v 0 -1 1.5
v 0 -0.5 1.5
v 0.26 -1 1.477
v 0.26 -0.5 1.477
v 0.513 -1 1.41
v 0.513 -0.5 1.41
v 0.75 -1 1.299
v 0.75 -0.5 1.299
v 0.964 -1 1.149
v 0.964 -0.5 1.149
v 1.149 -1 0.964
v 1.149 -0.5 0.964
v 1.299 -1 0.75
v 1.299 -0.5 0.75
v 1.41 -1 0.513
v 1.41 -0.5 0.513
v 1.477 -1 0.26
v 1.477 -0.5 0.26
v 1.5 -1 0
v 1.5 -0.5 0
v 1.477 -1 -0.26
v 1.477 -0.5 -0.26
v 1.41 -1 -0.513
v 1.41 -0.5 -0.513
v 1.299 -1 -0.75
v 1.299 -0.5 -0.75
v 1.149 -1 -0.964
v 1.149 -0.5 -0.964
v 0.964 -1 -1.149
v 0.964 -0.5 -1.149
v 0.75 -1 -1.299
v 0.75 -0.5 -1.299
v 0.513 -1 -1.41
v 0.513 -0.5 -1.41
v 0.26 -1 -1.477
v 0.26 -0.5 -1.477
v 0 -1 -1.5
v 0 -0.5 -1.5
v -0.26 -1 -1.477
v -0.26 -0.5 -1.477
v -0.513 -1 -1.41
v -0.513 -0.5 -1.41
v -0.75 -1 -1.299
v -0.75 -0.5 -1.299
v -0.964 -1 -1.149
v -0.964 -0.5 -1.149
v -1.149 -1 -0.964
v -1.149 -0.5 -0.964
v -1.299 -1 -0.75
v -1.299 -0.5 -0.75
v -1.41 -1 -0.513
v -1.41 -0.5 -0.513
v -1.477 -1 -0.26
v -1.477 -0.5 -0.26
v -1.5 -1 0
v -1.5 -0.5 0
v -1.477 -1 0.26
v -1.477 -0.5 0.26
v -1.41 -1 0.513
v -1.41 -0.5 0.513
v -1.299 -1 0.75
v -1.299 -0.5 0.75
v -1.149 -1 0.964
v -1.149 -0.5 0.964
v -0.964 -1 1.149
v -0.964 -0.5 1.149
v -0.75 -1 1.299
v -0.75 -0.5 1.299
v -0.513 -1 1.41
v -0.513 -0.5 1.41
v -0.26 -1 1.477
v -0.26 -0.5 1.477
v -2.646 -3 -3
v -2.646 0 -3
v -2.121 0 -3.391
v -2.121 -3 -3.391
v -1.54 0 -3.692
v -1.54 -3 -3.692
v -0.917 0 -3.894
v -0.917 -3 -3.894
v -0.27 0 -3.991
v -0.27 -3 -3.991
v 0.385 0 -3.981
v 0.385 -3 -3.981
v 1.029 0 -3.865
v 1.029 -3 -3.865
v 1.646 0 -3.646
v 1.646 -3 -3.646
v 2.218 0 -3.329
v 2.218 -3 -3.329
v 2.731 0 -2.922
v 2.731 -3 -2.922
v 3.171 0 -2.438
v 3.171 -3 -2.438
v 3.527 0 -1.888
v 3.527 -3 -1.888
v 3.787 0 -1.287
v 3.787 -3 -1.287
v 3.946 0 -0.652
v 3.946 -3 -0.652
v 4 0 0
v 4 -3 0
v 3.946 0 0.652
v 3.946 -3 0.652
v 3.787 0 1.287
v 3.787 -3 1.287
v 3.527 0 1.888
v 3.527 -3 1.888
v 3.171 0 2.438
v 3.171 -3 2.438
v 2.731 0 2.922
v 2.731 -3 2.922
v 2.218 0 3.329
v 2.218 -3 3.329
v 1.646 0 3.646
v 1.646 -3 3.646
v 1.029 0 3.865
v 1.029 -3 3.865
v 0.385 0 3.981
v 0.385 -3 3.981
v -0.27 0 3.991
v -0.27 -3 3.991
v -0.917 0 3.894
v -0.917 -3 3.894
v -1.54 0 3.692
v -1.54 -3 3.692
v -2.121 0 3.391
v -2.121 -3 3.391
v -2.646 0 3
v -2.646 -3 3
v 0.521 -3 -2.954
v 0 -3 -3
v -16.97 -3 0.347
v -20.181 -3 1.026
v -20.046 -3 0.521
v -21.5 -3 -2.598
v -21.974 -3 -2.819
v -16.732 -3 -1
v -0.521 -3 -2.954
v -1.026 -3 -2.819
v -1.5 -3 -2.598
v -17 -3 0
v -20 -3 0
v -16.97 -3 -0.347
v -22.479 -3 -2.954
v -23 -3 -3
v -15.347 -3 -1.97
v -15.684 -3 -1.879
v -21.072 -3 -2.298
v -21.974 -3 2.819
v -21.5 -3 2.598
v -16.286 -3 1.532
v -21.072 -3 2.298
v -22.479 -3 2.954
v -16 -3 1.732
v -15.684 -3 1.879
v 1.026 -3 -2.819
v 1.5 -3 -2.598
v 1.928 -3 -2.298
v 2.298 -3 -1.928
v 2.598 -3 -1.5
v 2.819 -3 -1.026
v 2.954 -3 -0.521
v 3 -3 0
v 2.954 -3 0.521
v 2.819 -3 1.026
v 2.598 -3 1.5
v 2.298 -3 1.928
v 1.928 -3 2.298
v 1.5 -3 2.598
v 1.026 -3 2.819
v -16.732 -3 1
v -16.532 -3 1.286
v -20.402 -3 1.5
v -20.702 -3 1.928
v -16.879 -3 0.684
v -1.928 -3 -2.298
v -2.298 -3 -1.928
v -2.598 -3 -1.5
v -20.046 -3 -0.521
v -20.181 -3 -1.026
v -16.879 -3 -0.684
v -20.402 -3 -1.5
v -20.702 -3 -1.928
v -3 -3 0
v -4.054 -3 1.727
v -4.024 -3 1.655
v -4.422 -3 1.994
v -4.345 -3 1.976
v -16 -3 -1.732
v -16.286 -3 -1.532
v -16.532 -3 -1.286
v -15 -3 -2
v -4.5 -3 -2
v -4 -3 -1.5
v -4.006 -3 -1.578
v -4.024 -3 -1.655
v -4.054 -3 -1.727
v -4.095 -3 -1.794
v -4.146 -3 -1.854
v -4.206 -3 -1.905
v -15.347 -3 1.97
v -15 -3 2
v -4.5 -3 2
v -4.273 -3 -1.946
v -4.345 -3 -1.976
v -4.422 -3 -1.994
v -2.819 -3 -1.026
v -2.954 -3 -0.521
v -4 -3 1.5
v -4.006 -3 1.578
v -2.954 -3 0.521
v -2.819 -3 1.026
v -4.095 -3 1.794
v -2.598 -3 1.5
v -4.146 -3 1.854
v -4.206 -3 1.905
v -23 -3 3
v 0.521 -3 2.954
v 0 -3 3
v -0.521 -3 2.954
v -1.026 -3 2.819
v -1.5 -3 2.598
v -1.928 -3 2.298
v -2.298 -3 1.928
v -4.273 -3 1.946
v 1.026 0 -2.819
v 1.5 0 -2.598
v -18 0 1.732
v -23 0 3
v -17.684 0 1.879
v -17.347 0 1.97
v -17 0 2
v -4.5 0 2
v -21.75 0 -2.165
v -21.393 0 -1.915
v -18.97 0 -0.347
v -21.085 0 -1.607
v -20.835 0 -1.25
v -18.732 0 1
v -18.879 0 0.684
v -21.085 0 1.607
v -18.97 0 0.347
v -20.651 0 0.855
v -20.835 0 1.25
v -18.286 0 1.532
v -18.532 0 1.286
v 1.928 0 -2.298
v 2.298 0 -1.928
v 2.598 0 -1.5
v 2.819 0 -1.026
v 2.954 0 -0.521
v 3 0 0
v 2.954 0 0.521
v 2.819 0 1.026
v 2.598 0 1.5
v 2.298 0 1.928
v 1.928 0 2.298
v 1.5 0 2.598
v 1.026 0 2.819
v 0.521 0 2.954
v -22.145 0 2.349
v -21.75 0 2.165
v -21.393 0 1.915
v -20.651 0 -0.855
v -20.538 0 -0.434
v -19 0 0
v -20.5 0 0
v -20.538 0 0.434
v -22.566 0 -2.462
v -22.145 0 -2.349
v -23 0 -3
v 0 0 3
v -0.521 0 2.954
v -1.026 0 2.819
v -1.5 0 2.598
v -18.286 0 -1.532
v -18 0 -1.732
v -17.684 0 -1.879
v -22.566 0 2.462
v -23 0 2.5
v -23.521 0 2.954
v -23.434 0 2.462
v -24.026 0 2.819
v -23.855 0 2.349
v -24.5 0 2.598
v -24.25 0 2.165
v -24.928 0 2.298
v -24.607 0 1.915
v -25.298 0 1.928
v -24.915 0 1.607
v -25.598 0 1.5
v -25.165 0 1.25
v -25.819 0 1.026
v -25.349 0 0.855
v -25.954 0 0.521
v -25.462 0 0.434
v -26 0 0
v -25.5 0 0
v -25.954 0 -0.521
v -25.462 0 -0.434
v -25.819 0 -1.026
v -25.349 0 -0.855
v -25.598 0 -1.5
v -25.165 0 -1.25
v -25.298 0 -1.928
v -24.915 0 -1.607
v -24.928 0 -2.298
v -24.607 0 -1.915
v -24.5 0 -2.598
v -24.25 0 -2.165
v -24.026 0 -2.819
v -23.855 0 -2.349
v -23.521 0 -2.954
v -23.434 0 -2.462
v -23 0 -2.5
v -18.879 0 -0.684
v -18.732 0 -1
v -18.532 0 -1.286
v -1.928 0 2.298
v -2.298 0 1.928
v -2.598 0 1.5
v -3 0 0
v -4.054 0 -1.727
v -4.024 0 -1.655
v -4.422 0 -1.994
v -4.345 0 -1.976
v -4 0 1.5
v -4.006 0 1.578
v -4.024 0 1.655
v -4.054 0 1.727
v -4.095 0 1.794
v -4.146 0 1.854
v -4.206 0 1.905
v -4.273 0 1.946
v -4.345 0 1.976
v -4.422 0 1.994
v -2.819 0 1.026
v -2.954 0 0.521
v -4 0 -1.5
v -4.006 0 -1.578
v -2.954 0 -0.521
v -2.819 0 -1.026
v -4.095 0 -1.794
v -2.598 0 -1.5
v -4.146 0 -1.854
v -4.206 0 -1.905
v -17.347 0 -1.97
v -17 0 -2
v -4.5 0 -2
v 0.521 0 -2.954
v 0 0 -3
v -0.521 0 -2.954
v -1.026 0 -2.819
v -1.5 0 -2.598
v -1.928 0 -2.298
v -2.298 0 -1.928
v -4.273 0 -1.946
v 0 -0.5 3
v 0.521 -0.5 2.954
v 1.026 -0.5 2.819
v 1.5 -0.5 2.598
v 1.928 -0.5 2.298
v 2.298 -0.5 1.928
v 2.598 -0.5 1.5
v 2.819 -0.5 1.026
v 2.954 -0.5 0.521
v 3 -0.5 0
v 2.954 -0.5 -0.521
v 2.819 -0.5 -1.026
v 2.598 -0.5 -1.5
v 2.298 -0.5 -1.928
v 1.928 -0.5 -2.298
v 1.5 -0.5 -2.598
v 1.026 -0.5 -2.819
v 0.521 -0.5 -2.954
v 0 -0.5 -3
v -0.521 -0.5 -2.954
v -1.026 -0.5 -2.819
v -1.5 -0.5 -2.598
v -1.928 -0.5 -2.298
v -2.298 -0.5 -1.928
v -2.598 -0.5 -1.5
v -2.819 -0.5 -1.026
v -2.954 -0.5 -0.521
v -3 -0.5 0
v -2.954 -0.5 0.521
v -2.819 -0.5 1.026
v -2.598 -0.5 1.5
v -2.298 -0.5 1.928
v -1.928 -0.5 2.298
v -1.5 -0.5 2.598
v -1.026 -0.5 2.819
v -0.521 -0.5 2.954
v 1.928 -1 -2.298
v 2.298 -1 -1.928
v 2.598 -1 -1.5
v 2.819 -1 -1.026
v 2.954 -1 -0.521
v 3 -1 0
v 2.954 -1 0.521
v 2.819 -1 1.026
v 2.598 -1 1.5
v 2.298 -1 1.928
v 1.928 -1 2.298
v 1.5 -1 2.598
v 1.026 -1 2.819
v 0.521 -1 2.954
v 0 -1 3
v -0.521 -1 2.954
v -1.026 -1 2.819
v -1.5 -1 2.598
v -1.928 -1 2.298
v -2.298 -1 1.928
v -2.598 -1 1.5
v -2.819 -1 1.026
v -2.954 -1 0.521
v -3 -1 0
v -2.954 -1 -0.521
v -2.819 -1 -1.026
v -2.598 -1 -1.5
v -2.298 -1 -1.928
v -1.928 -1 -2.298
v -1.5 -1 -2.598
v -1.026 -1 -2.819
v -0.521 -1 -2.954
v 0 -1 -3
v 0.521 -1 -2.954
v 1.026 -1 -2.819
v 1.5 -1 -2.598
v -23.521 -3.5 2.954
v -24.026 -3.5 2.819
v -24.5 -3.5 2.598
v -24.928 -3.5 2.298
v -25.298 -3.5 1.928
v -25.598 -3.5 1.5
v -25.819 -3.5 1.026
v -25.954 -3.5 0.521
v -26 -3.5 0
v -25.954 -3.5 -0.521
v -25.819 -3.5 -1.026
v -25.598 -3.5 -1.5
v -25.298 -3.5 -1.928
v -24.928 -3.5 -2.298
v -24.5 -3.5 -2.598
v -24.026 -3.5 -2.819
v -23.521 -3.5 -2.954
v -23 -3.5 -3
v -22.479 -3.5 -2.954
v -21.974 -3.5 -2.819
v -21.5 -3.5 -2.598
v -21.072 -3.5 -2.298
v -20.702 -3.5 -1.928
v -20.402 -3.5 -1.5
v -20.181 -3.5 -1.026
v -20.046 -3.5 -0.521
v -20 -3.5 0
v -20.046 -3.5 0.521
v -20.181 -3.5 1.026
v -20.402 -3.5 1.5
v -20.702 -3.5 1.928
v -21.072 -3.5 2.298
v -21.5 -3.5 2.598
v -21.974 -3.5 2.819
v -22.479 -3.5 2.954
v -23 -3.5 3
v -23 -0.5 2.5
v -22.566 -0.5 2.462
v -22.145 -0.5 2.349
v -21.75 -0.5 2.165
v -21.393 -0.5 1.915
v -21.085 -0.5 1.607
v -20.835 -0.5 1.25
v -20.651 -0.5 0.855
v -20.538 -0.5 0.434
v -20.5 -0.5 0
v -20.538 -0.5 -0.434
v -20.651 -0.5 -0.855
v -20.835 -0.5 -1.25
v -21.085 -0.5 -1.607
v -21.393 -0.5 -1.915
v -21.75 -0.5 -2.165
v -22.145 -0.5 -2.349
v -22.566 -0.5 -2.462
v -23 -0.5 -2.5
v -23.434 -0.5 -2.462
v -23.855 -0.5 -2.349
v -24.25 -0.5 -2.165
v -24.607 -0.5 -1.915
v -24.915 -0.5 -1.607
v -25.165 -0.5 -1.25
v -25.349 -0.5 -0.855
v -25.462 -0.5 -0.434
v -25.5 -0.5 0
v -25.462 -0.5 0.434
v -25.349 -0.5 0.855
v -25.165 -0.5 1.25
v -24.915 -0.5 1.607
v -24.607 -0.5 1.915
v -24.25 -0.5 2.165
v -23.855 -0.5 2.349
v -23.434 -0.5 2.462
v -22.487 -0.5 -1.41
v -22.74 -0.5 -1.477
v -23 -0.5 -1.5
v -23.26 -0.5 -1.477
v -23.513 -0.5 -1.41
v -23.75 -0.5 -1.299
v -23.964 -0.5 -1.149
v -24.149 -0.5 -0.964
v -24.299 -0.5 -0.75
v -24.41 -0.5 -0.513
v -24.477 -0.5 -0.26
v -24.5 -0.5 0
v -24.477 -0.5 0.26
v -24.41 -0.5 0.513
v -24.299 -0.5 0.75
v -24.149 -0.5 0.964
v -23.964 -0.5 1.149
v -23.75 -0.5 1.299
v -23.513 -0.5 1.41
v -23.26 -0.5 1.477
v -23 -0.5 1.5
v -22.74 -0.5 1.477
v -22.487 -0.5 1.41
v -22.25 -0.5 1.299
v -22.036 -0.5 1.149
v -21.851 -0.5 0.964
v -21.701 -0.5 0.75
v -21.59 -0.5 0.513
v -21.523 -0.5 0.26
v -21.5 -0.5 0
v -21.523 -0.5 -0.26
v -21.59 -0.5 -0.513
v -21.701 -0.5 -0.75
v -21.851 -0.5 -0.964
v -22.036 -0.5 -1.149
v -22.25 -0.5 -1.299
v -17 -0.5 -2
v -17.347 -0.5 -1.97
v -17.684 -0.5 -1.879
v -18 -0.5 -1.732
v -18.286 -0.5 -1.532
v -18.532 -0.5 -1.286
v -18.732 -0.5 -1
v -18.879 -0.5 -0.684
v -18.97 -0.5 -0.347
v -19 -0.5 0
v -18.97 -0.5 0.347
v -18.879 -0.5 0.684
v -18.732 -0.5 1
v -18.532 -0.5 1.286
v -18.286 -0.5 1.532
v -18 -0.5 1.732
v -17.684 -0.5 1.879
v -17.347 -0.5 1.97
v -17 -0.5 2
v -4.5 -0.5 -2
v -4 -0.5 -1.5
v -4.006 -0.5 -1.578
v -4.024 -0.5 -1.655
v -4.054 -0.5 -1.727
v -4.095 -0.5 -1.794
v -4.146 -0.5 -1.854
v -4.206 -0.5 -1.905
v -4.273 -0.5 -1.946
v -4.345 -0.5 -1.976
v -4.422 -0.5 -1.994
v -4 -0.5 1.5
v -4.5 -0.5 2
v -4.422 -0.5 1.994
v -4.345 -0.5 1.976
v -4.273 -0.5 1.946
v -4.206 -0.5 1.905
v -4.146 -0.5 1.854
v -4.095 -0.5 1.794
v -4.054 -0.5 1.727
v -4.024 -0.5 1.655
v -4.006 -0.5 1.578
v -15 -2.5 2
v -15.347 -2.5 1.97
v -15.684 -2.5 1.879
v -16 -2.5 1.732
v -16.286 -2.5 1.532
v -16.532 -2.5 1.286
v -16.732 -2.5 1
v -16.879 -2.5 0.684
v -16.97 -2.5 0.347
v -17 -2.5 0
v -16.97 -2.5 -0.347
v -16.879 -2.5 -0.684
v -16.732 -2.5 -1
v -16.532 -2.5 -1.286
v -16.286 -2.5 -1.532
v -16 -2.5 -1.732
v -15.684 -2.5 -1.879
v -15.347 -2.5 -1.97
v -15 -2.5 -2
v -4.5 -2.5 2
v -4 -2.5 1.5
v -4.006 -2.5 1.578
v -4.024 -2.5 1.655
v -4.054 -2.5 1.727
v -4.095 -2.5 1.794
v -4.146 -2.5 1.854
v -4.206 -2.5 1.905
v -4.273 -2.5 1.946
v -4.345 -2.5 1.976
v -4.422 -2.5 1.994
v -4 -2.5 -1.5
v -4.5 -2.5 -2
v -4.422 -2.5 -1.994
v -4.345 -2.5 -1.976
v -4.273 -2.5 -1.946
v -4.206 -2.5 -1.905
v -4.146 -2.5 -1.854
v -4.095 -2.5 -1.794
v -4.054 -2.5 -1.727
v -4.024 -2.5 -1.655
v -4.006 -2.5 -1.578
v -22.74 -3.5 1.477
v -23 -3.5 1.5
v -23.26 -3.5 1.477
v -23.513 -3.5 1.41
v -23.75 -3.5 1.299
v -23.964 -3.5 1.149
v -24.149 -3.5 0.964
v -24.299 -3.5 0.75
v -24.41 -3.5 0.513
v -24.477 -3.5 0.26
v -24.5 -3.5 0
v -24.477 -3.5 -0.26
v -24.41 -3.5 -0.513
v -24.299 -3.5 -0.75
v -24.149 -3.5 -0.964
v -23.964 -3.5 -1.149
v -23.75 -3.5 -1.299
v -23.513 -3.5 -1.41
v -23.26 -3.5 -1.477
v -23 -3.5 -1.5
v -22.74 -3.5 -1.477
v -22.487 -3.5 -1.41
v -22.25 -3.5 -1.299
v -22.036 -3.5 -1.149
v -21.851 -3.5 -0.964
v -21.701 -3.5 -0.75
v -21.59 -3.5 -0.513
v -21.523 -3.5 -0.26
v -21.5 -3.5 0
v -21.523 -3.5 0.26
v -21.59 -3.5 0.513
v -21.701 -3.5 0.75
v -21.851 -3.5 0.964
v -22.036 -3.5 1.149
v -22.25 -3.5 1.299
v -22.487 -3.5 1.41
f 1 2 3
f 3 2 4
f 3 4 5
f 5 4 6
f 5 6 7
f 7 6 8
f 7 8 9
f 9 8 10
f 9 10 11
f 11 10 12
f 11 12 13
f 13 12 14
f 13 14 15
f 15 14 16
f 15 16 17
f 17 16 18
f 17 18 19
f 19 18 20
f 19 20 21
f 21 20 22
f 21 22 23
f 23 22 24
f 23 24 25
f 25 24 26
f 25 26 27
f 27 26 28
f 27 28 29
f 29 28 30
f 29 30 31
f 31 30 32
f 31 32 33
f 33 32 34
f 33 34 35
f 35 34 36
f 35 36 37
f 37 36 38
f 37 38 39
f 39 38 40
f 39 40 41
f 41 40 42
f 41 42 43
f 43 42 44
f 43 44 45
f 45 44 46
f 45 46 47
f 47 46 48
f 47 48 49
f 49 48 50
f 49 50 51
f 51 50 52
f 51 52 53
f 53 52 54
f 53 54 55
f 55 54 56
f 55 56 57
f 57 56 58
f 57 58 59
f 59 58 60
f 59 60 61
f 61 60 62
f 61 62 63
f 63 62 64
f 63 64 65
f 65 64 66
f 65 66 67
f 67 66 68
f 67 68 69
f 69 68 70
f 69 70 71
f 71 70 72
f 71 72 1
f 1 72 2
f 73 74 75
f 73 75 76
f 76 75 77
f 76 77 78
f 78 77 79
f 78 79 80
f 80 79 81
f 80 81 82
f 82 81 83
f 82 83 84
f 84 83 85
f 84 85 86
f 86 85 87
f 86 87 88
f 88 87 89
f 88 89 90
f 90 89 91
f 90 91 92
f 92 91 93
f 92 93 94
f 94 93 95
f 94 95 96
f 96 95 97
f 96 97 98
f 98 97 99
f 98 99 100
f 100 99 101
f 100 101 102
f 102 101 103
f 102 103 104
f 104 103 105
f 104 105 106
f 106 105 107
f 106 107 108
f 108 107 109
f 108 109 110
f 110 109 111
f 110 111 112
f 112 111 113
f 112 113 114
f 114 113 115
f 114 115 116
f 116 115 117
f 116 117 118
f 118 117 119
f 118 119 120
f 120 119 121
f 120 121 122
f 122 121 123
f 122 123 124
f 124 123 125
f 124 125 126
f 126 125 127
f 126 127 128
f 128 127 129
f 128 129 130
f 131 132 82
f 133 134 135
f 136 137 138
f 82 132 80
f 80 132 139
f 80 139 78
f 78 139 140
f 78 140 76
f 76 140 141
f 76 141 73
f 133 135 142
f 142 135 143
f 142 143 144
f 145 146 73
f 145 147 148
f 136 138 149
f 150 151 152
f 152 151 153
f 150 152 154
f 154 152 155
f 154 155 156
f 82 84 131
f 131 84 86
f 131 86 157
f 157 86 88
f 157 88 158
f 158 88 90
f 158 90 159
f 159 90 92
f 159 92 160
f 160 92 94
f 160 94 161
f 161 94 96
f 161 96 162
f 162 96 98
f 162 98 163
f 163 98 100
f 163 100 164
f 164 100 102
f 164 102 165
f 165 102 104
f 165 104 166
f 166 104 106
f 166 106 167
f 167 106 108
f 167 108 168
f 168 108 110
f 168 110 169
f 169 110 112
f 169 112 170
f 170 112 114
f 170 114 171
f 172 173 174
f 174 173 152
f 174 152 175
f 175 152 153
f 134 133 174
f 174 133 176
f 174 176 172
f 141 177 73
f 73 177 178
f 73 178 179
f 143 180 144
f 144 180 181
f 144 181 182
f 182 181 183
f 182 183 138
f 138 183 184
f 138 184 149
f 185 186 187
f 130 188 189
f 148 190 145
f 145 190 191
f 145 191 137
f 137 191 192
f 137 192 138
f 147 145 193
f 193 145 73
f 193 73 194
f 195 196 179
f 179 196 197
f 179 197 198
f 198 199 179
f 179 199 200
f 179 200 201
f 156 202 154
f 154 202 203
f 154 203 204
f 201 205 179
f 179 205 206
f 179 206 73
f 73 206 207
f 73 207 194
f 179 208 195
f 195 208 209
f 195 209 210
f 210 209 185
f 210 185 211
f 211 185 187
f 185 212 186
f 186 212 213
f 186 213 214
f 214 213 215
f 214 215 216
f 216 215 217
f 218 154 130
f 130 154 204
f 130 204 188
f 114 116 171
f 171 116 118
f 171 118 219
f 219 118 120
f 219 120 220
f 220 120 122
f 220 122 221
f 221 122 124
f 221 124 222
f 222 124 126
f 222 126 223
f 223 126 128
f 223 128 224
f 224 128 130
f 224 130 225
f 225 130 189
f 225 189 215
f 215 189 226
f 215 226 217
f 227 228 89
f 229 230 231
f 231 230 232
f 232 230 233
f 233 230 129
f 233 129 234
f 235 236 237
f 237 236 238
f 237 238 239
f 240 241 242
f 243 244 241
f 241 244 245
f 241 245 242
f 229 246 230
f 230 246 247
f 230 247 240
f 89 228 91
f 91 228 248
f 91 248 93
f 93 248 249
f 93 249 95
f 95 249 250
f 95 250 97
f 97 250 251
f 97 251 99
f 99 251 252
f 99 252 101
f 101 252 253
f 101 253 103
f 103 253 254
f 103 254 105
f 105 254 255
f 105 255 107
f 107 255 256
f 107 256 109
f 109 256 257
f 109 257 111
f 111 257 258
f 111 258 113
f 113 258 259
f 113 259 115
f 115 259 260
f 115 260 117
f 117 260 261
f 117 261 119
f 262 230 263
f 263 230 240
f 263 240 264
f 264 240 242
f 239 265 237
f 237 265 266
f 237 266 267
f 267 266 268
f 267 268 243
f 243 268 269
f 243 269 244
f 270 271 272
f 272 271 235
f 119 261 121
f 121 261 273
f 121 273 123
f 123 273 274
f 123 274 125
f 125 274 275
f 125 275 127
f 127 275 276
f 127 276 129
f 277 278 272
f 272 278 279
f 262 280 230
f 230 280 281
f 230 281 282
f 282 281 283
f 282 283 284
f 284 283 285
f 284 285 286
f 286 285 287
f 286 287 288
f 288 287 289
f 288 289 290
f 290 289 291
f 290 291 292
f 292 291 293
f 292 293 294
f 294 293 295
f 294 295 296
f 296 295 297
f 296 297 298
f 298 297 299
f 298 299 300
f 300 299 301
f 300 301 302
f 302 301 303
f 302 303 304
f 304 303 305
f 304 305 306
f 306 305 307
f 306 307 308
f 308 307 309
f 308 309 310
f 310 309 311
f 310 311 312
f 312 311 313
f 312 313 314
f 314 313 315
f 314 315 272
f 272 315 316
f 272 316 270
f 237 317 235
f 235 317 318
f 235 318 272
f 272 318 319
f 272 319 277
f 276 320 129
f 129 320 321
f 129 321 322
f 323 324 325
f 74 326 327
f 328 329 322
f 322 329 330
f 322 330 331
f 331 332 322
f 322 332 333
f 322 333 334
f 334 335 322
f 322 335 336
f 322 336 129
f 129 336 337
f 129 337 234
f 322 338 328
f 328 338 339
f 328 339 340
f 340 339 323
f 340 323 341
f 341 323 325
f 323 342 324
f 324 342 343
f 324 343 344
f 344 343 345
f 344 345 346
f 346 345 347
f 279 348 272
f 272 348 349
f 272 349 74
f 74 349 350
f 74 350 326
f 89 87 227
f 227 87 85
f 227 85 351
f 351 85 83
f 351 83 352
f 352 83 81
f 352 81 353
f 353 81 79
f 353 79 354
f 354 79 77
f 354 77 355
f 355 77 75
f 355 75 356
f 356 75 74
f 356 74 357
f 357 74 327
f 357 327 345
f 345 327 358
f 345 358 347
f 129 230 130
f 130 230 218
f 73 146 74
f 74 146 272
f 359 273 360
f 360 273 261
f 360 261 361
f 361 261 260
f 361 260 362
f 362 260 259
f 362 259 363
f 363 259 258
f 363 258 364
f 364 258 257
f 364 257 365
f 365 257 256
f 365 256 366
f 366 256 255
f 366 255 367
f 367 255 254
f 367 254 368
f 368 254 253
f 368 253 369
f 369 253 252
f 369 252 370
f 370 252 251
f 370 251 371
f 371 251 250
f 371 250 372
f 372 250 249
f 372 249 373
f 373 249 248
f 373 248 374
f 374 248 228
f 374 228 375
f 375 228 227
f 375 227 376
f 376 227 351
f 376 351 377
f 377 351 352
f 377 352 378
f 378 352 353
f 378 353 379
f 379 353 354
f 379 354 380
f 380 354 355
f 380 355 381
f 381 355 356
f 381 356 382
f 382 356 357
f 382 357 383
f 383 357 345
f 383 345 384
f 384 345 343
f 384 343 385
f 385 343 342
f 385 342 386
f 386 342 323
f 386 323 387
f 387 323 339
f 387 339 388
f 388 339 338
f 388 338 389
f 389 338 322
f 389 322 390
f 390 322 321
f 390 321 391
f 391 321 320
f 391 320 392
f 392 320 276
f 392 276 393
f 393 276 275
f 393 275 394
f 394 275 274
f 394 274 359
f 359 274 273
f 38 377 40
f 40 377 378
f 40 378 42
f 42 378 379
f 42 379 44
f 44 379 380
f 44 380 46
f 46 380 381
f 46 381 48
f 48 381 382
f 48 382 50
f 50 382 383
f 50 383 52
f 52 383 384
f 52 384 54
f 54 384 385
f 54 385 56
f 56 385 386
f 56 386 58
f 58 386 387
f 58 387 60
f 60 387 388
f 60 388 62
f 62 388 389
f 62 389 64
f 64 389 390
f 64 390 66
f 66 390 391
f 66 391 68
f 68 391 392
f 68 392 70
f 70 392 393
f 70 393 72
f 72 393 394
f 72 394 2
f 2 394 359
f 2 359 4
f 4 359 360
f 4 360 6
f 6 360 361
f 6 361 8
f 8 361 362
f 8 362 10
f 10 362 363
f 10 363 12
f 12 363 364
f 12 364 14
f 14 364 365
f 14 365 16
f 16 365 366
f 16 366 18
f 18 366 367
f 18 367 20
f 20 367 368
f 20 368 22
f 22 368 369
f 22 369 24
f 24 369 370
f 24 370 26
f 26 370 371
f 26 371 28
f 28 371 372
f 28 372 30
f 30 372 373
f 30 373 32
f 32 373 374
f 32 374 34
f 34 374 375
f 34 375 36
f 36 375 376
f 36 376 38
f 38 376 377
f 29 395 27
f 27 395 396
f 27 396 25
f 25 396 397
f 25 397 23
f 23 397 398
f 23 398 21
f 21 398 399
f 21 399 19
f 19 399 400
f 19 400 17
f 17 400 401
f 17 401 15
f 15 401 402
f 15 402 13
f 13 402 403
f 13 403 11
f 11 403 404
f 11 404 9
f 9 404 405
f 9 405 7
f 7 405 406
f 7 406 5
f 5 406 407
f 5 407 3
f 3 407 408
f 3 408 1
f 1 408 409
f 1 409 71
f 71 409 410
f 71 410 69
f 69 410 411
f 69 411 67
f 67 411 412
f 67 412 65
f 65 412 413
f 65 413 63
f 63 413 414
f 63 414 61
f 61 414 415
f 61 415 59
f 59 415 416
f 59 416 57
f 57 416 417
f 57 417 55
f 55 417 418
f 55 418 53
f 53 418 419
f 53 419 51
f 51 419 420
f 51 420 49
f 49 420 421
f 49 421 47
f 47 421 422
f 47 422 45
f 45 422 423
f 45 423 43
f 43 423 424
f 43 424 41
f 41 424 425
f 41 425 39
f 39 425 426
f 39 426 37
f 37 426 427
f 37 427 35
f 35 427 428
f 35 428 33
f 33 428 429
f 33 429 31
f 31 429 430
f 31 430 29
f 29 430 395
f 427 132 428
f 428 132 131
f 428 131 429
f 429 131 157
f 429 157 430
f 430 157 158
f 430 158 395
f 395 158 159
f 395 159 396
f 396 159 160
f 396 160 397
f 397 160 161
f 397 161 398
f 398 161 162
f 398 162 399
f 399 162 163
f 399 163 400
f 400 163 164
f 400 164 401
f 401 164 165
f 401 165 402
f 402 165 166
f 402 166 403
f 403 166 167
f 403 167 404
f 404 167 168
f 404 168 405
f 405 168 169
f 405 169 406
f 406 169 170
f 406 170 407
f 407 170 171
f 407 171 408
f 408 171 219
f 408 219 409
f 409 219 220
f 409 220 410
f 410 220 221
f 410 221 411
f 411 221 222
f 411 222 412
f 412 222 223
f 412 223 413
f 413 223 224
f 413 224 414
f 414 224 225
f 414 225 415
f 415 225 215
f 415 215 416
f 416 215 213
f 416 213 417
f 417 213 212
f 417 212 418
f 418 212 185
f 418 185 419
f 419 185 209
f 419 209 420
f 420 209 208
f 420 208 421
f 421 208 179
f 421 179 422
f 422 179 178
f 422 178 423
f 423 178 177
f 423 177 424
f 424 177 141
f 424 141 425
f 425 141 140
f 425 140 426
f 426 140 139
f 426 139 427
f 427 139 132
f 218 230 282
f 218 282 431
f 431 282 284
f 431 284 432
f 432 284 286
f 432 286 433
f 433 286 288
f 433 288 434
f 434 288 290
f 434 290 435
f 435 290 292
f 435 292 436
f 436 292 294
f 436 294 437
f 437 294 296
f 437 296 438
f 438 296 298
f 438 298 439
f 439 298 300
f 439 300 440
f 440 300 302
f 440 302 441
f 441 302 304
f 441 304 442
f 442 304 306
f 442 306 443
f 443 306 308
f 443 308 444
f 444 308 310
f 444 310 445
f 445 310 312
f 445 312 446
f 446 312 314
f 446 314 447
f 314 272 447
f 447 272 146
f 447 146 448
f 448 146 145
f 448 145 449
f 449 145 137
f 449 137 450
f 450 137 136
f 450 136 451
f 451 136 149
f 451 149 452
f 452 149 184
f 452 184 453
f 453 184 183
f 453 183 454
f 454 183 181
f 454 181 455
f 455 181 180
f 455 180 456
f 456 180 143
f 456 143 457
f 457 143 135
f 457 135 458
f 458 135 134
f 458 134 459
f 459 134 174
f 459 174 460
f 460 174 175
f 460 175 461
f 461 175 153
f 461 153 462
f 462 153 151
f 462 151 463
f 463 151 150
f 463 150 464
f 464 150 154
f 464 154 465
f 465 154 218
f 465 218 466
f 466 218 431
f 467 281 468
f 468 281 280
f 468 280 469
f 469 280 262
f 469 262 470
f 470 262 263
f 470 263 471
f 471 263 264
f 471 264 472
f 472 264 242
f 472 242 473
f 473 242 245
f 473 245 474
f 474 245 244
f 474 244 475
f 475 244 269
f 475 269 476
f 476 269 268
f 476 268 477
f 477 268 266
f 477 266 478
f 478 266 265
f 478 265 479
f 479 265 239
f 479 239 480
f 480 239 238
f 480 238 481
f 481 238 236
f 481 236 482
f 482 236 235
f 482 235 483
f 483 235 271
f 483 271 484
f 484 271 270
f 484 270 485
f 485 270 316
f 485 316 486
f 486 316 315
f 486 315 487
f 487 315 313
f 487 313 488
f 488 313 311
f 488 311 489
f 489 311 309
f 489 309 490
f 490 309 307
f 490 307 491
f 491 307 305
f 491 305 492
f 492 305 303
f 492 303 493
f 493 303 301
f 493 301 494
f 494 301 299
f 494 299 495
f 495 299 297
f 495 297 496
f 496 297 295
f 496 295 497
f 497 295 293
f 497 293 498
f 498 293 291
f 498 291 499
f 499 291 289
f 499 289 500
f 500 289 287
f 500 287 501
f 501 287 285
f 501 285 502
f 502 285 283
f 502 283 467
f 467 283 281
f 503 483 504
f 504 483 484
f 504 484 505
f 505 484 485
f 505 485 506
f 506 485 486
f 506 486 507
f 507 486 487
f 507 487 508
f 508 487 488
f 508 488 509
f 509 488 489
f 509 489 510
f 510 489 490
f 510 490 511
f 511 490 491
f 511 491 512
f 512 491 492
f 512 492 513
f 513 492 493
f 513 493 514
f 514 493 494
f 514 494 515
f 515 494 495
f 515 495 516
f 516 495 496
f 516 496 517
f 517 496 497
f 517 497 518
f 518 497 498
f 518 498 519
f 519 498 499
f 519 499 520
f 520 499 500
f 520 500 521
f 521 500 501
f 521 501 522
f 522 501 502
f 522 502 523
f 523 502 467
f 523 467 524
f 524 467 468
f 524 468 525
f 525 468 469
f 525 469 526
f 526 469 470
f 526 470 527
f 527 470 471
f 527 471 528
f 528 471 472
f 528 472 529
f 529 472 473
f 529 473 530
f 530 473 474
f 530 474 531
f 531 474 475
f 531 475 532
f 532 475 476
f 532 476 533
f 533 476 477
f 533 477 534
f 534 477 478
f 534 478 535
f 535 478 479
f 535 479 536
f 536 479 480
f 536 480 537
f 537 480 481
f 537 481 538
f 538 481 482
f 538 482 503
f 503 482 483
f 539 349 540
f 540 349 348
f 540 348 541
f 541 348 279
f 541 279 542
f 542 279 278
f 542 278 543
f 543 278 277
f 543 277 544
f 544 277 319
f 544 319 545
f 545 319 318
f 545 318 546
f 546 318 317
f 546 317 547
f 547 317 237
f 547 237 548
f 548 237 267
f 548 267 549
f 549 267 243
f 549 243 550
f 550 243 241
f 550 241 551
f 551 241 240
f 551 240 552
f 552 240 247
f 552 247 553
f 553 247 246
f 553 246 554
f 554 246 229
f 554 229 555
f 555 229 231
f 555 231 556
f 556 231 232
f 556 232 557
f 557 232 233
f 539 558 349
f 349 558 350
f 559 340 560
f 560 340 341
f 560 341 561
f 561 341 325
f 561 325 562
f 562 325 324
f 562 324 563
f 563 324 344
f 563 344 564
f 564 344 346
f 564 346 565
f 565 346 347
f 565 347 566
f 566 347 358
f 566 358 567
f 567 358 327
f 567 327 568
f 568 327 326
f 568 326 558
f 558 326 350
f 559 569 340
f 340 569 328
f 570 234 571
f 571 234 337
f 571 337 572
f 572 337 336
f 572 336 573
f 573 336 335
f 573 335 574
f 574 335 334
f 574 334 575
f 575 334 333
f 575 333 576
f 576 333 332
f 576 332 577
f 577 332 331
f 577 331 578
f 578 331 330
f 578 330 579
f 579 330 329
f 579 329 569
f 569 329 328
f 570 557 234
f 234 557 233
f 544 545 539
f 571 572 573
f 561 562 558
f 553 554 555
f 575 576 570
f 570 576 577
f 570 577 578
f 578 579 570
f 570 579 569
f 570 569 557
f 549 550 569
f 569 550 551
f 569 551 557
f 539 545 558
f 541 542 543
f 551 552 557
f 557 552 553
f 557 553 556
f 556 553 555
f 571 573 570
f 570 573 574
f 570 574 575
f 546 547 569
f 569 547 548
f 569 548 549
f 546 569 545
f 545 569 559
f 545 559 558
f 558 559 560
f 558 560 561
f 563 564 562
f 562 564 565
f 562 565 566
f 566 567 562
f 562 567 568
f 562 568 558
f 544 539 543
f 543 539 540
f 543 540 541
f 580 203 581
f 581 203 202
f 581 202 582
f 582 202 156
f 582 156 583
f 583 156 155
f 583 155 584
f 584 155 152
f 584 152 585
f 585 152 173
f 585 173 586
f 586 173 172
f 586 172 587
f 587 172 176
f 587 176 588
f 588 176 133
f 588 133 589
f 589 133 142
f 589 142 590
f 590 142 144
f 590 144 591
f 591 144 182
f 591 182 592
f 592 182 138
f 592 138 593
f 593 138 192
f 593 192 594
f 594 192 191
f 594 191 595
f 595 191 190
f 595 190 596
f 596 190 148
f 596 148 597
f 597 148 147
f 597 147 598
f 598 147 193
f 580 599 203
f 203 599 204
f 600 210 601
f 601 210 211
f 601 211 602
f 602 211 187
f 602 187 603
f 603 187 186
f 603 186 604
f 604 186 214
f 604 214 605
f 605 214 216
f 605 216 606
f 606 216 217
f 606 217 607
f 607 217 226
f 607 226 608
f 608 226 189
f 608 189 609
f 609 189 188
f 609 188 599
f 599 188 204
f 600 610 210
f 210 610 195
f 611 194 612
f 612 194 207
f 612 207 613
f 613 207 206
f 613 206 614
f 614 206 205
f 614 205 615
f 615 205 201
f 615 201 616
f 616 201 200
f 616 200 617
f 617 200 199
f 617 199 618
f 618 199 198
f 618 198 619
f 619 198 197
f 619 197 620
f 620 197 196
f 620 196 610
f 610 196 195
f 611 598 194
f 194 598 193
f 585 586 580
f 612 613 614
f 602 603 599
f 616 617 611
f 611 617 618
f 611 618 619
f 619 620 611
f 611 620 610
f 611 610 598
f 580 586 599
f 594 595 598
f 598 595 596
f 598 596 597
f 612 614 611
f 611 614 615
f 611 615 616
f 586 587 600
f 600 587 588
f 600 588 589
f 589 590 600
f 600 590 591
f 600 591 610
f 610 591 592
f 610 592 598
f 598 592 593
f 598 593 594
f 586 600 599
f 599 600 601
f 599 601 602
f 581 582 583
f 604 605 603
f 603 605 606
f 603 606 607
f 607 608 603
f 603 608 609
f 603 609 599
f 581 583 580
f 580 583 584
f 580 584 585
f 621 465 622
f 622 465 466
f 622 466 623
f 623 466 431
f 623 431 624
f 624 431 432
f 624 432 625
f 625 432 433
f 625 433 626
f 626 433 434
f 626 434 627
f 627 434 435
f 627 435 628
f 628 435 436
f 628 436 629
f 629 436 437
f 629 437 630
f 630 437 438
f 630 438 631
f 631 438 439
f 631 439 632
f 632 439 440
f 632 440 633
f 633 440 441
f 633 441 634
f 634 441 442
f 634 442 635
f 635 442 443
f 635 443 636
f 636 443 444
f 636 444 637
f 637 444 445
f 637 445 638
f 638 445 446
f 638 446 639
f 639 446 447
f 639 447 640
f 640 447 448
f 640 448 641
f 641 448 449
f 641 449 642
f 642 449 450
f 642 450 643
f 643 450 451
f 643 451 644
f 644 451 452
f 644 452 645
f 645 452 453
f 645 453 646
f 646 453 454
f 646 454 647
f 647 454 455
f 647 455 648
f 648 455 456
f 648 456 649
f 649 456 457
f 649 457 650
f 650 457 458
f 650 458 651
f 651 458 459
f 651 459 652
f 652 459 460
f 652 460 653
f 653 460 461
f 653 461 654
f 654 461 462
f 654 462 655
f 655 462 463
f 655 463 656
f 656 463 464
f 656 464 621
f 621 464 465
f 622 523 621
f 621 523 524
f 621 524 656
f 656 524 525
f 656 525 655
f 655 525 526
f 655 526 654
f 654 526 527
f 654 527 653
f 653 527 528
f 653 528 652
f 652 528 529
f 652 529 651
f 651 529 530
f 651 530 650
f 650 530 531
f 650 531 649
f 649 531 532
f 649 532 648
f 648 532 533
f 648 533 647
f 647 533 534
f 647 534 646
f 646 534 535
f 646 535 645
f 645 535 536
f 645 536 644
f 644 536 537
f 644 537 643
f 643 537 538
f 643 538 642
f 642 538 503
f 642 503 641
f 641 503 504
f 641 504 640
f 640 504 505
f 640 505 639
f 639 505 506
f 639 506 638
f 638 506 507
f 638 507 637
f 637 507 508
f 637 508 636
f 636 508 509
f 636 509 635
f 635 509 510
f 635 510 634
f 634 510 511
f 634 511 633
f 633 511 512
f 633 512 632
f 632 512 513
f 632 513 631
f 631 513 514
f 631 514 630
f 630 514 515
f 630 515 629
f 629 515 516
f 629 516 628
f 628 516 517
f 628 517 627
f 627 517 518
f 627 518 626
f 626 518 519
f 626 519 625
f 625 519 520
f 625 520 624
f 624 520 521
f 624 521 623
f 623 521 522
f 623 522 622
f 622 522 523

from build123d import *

# Parameters (mm, degrees)
SKETCH1_R           = 4
BOSS_EXTRUDE1_DEPTH = 3
SKETCH5_W           = 23
SKETCH5_H           = 6
BOSS_EXTRUDE2_DEPTH = 3
SKETCH2_R           = 3
CUT_EXTRUDE4_DEPTH  = 0.5
SKETCH7_R           = 1.5
CUT_EXTRUDE5_DEPTH  = 3.5
SKETCH8_R           = 3
CUT_EXTRUDE7_DEPTH  = 2
SKETCH9_R           = 3
BOSS_EXTRUDE3_DEPTH = 3
SKETCH10_R          = 2.5
CUT_EXTRUDE8_DEPTH  = 0.5
CUT_EXTRUDE10_DEPTH = 0.5
CUT_EXTRUDE11_DEPTH = 0.5
SKETCH11_R          = 3
BOSS_EXTRUDE5_DEPTH = 0.5
SKETCH15_R          = 1.5
CUT_EXTRUDE12_DEPTH = 4


with BuildPart() as part:
    # Sketch1 → Boss-Extrude1 (new body)
    with BuildSketch(Plane(origin=(0, 0, 0), x_dir=(1, 0, 0), z_dir=(0, 1, 0))):
        Circle(SKETCH1_R)
    extrude(amount=-BOSS_EXTRUDE1_DEPTH)

    # Sketch5 → Boss-Extrude2 (add)
    with BuildSketch(Plane(origin=(0, 0, 0), x_dir=(1, 0, 0), z_dir=(0, 1, 0))):
        with Locations((-11.5, 0)):
            Rectangle(SKETCH5_W, SKETCH5_H)
    extrude(amount=-BOSS_EXTRUDE2_DEPTH)

    # Sketch2 → Cut-Extrude4 (cut)
    with BuildSketch(Plane(origin=(0, 0, 0), x_dir=(1, 0, 0), z_dir=(0, 1, 0))):
        Circle(SKETCH2_R)
    extrude(amount=-CUT_EXTRUDE4_DEPTH, mode=Mode.SUBTRACT)

    # Sketch7 → Cut-Extrude5 (cut, through all)
    with BuildSketch(Plane(origin=(0, -0.5, 0), x_dir=(1, 0, 0), z_dir=(0, 1, 0))):
        Circle(SKETCH7_R)
    extrude(amount=-CUT_EXTRUDE5_DEPTH, mode=Mode.SUBTRACT)

    # Sketch8 → Cut-Extrude7 (cut)
    with BuildSketch(Plane.XZ.offset(3)):
        Circle(SKETCH8_R)
    extrude(amount=-CUT_EXTRUDE7_DEPTH, mode=Mode.SUBTRACT)

    # Sketch9 → Boss-Extrude3 (add)
    with BuildSketch(Plane(origin=(0, 0, 0), x_dir=(1, 0, 0), z_dir=(0, 1, 0))):
        with Locations((-23, 0)):
            Circle(SKETCH9_R)
    extrude(amount=-BOSS_EXTRUDE3_DEPTH)

    # Sketch10 → Cut-Extrude8 (cut)
    with BuildSketch(Plane(origin=(0, 0, 0), x_dir=(1, 0, 0), z_dir=(0, 1, 0))):
        with Locations((-23, 0)):
            Circle(SKETCH10_R)
    extrude(amount=-CUT_EXTRUDE8_DEPTH, mode=Mode.SUBTRACT)

    # Sketch12 → Cut-Extrude10 (cut)
    with BuildSketch(Plane(origin=(0, 0, 0), x_dir=(1, 0, 0), z_dir=(0, 1, 0))):
        with BuildLine():
            Line((-4.5, -2), (-17, -2))
            ThreePointArc((-17, -2), (-19, 0), (-17, 2))
            Line((-17, 2), (-4.5, 2))
            ThreePointArc((-4.5, 2), (-4.146446609, 1.853553391), (-4, 1.5))
            Line((-4, 1.5), (-4, -1.5))
            ThreePointArc((-4, -1.5), (-4.146446609, -1.853553391), (-4.5, -2))
        make_face()
    extrude(amount=-CUT_EXTRUDE10_DEPTH, mode=Mode.SUBTRACT)

    # Sketch13 → Cut-Extrude11 (cut)
    with BuildSketch(Plane.XZ.offset(3)):
        with BuildLine():
            Line((-4.5, -2), (-15, -2))
            ThreePointArc((-15, -2), (-17, 0), (-15, 2))
            Line((-15, 2), (-4.5, 2))
            ThreePointArc((-4.5, 2), (-4.146446609, 1.853553391), (-4, 1.5))
            Line((-4, 1.5), (-4, -1.5))
            ThreePointArc((-4, -1.5), (-4.146446609, -1.853553391), (-4.5, -2))
        make_face()
    extrude(amount=-CUT_EXTRUDE11_DEPTH, mode=Mode.SUBTRACT)

    # Sketch11 → Boss-Extrude5 (add)
    with BuildSketch(Plane(origin=(0, -3, 0), x_dir=(1, 0, 0), z_dir=(0, 1, 0))):
        with Locations((-23, 0)):
            Circle(SKETCH11_R)
    extrude(amount=-BOSS_EXTRUDE5_DEPTH)

    # Sketch15 → Cut-Extrude12 (cut, through all)
    with BuildSketch(Plane(origin=(0, -0.5, 0), x_dir=(1, 0, 0), z_dir=(0, 1, 0))):
        with Locations((-23, 0)):
            Circle(SKETCH15_R)
    extrude(amount=-CUT_EXTRUDE12_DEPTH, mode=Mode.SUBTRACT)


solid = part.part
